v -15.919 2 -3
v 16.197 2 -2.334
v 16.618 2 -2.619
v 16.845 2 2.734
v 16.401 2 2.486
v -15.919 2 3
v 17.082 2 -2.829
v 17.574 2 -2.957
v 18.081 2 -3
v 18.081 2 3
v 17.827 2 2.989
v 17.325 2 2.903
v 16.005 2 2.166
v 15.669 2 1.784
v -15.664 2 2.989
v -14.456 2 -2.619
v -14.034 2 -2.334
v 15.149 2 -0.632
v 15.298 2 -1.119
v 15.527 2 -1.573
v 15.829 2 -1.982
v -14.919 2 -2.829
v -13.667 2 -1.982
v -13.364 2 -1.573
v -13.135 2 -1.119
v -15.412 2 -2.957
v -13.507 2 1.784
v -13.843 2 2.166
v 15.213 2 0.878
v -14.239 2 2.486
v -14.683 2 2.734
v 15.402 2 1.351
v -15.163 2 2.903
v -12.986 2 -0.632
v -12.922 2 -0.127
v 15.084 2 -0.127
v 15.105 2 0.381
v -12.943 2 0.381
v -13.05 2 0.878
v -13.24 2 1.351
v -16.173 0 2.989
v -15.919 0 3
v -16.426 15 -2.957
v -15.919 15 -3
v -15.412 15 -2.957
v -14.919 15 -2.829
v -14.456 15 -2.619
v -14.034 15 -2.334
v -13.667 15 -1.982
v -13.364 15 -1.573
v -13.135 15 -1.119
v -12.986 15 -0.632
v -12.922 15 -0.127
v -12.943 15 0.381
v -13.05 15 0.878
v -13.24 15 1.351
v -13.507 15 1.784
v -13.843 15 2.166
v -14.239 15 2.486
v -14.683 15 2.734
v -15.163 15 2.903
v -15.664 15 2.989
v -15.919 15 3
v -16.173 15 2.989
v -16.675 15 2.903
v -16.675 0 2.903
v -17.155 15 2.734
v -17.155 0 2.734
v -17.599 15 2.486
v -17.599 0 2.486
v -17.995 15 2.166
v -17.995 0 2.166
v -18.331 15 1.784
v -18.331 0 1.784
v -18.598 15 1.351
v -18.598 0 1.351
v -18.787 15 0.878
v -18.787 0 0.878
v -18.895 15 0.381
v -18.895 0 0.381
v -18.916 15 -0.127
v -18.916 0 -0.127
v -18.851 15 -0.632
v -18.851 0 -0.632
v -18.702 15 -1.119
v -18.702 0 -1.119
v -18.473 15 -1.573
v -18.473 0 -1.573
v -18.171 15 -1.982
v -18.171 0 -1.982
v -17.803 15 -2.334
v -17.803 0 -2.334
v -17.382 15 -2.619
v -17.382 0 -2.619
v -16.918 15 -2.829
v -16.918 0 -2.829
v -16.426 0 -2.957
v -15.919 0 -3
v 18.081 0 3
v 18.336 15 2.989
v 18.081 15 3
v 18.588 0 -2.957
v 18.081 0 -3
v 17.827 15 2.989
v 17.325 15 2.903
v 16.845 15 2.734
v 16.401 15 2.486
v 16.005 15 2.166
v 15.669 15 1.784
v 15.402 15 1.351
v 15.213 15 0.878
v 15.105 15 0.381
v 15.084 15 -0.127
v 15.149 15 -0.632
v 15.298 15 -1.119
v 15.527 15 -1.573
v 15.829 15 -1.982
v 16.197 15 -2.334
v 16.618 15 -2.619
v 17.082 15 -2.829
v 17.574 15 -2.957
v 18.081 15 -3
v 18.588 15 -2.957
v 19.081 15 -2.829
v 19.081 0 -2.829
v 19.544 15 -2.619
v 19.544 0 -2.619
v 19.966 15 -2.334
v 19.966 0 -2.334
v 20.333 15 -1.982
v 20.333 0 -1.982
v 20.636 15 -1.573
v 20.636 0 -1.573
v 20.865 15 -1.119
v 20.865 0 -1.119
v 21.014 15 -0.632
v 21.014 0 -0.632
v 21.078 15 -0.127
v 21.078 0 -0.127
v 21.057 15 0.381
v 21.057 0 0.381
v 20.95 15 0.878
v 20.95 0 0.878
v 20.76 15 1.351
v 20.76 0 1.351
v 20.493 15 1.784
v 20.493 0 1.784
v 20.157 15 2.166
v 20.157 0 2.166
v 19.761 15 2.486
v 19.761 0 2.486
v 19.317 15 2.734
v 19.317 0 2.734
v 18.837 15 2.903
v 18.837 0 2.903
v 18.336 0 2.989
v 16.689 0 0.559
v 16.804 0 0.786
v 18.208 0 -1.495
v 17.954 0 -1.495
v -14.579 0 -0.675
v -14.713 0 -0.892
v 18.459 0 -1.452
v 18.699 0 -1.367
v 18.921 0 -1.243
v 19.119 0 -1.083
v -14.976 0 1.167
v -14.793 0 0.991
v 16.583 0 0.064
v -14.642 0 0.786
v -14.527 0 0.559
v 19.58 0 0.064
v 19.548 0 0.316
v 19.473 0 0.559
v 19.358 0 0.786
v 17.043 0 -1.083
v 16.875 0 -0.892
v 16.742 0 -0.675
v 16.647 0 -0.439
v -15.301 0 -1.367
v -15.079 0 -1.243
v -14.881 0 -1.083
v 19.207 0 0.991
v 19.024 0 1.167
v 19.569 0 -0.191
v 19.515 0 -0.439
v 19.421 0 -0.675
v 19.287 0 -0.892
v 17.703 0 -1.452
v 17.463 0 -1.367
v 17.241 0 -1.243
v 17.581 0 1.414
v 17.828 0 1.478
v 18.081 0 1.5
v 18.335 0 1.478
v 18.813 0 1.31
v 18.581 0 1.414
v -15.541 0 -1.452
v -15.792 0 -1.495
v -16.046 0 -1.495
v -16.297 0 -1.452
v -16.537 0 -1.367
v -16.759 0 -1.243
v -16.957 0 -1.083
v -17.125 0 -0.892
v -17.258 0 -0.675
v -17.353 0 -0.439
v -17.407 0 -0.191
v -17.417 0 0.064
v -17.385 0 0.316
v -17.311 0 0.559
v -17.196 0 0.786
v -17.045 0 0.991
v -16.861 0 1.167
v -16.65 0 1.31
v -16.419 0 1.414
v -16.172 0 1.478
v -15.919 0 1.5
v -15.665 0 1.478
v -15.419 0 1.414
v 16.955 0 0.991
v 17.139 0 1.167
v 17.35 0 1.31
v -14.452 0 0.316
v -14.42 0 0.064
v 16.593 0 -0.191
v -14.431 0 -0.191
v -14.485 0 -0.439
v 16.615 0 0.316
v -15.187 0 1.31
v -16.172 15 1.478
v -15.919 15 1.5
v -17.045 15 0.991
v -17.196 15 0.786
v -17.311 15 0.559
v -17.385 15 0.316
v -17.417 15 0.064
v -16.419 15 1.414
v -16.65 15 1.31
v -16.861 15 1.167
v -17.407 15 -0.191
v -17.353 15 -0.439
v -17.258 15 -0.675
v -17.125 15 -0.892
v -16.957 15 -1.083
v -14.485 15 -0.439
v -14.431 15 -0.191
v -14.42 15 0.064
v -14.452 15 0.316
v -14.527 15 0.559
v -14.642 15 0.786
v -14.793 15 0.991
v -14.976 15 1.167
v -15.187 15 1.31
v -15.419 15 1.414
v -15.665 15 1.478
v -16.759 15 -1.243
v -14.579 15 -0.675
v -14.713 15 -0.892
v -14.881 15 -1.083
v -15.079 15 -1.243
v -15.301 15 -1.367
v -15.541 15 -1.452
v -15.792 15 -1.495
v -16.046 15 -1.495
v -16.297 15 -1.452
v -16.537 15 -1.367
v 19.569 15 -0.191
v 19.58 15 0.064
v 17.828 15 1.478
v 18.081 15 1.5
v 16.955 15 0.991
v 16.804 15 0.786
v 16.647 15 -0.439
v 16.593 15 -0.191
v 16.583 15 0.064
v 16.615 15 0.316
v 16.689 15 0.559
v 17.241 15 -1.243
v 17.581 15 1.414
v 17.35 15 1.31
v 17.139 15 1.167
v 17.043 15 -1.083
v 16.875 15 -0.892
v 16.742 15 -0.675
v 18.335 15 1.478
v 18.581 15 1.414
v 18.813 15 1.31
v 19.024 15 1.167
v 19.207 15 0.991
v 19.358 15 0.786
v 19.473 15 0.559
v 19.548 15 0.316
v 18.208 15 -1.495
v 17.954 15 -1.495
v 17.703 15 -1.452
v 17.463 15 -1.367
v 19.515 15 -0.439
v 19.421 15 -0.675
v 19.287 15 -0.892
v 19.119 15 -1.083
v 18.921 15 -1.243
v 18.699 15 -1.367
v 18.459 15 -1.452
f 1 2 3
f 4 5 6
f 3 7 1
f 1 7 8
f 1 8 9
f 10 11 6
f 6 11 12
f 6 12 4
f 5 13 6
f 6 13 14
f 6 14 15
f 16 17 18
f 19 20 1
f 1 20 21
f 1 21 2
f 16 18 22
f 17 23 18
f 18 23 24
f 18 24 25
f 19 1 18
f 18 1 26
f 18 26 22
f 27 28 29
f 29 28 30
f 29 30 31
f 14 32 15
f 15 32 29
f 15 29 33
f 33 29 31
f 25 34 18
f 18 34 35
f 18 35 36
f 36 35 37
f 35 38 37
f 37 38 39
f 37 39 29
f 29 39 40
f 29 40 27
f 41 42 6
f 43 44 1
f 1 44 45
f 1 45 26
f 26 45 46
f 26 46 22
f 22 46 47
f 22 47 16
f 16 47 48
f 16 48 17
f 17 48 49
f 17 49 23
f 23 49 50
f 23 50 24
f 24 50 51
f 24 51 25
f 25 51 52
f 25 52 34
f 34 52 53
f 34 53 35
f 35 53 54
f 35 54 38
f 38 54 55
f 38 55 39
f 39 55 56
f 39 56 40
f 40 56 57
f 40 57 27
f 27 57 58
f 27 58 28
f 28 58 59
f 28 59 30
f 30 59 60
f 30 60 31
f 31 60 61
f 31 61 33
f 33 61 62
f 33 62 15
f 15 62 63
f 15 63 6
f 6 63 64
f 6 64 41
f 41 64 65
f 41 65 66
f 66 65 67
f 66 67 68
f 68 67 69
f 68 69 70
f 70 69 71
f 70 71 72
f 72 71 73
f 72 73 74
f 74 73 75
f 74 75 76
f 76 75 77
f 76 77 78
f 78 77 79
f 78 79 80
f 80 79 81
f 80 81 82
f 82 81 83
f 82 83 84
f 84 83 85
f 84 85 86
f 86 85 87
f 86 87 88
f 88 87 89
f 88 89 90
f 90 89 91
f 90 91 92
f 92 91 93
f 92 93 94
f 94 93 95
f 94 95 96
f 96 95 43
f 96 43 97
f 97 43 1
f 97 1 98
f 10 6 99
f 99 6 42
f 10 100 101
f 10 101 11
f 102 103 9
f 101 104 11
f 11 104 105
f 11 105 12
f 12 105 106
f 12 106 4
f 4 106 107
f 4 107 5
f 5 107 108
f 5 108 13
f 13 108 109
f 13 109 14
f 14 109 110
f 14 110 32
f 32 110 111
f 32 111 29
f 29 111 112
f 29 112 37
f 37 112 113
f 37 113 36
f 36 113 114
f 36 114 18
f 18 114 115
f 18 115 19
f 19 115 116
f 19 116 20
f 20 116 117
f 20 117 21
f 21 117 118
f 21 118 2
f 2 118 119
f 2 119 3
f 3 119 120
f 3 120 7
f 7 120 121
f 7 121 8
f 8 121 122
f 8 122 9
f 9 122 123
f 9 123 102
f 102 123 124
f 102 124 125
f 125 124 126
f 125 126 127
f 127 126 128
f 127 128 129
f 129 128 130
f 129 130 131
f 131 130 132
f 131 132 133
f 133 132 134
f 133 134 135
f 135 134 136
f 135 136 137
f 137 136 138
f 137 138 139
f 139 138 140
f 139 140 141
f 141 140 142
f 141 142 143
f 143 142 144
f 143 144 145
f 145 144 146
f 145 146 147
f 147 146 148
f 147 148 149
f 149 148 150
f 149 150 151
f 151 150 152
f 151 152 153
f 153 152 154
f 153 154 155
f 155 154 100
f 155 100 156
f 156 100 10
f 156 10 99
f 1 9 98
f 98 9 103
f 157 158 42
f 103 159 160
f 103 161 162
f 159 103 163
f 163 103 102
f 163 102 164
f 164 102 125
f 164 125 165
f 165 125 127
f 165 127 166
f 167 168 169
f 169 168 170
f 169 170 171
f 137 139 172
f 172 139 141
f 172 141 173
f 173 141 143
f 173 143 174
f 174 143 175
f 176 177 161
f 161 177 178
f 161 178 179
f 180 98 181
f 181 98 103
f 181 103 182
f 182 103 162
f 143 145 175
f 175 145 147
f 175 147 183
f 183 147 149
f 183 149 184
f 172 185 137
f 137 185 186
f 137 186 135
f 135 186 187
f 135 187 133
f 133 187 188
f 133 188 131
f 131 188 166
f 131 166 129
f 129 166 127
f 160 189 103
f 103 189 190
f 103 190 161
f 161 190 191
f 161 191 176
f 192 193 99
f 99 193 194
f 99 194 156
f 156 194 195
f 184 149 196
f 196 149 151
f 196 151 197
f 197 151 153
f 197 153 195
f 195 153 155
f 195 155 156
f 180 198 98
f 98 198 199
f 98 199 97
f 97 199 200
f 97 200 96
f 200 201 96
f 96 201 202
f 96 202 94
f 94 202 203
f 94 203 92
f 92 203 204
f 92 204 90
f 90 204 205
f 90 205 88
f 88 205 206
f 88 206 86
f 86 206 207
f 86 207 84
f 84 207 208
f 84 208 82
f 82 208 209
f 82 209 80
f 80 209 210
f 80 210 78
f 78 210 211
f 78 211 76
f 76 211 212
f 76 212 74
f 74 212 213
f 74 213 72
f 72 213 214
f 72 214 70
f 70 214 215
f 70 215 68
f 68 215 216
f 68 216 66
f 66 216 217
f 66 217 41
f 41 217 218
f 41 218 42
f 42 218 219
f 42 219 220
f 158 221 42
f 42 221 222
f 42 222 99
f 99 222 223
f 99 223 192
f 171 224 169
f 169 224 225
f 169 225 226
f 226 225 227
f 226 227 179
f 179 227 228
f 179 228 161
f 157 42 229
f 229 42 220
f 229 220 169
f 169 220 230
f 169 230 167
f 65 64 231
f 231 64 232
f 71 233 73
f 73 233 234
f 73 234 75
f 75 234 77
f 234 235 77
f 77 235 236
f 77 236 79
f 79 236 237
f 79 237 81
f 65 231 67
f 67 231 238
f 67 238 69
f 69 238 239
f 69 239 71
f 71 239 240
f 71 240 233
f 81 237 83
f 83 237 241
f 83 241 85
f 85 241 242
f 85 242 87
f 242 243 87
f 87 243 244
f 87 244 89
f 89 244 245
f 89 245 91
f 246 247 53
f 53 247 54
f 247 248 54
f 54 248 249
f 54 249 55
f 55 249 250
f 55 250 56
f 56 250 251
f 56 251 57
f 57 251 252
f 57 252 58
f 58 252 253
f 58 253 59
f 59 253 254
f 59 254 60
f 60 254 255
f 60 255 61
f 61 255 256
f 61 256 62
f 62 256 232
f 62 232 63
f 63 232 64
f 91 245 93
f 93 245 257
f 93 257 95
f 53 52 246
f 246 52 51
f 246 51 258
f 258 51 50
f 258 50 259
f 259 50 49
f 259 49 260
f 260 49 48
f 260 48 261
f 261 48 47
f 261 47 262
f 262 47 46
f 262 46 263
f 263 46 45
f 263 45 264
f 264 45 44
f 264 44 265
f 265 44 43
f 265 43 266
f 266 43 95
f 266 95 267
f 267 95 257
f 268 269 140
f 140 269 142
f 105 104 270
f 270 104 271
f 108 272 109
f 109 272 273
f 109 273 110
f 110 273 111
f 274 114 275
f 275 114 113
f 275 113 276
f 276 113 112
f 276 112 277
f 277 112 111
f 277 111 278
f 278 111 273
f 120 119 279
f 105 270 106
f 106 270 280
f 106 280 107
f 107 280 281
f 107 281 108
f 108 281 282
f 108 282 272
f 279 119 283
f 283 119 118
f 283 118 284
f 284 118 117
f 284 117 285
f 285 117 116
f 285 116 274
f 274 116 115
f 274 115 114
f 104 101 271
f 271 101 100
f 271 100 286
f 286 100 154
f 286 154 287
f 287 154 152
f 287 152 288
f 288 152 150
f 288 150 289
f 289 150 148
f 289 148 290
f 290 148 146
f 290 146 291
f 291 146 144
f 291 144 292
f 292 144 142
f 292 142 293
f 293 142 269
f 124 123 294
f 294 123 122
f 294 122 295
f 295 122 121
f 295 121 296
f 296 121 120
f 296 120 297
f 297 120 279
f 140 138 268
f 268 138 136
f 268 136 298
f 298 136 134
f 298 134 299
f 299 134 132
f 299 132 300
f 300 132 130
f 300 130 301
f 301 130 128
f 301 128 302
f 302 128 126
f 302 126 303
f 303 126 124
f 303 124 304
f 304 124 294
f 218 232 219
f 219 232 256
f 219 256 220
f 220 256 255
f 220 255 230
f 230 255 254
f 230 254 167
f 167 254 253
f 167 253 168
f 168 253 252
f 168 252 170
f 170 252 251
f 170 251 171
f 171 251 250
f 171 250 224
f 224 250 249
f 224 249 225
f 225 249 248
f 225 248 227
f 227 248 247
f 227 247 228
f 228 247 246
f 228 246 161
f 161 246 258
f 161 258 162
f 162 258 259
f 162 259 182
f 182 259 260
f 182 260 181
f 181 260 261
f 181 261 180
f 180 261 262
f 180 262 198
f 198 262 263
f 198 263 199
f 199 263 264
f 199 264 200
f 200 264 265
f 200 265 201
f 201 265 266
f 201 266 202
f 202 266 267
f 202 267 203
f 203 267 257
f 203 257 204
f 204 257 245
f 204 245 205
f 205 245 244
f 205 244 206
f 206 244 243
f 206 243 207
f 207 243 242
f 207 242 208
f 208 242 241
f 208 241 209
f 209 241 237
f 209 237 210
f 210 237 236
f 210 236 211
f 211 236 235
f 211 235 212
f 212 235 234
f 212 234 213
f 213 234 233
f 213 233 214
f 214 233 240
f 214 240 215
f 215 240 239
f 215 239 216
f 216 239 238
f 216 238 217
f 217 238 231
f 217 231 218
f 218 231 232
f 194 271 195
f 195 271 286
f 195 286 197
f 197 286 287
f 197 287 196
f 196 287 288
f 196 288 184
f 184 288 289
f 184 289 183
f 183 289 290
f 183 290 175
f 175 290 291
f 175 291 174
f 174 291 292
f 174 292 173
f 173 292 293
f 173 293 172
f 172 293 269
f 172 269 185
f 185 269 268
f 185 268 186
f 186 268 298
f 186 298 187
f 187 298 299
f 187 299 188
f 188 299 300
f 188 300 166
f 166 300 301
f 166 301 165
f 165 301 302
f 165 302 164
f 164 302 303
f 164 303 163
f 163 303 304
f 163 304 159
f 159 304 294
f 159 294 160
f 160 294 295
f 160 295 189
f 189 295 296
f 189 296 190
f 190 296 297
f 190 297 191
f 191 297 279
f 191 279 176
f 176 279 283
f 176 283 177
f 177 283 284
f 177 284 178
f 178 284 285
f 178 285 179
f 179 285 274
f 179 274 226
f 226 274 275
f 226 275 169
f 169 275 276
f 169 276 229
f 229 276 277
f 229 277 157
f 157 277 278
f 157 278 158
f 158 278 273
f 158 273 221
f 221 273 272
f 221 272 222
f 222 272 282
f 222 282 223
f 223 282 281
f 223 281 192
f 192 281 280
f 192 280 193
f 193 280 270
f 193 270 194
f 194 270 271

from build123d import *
from build123d.topology import SkipClean

# Parameters (mm, degrees)
EXTRUDE_1_DEPTH     = 2
EXTRUDE_2_DEPTH     = 13
SKETCH_4_R          = 1.5
CUT_EXTRUDE_1_DEPTH = 27.046428912
SKETCH_5_R          = 1.5
CUT_EXTRUDE_2_DEPTH = 27.046428912


with BuildPart() as part:
    # 草图1 → 凸台-拉伸1 (new body)
    with BuildSketch(Plane(origin=(0, 0, 0), x_dir=(1, 0, 0), z_dir=(0, 1, 0))):
        with BuildLine():
            Line((-15.918812675, 3), (18.081187325, 3))
            ThreePointArc((18.081187325, 3), (21.081187325, 0), (18.081187325, -3))
            Line((18.081187325, -3), (-15.918812675, -3))
            ThreePointArc((-15.918812675, -3), (-18.918812675, 0), (-15.918812675, 3))
        make_face()
    extrude(amount=EXTRUDE_1_DEPTH)

    # 草图2 → 凸台-拉伸2 (add)
    with SkipClean():  # the faces are left unmerged after this step: merging them gives an invalid solid
        with BuildSketch(Plane(origin=(0, 2, 0), x_dir=(1, 0, 0), z_dir=(0, 1, 0))):
            with BuildLine():
                ThreePointArc((-15.918812675, 3), (-18.918812675, 0), (-15.918812675, -3))
                ThreePointArc((-15.918812675, -3), (-13.797492331, -2.121320344), (-12.918812675, 0))
                ThreePointArc((-12.918812675, 0), (-13.797492331, 2.121320344), (-15.918812675, 3))
            make_face()
            with BuildLine():
                ThreePointArc((18.081187325, 3), (15.081187325, 0), (18.081187325, -3))
                ThreePointArc((18.081187325, -3), (20.202507669, -2.121320344), (21.081187325, 0))
                ThreePointArc((21.081187325, 0), (20.202507669, 2.121320344), (18.081187325, 3))
            make_face()
        extrude(amount=EXTRUDE_2_DEPTH)

    # 草图4 → 切除-拉伸1 (cut, through all)
    with SkipClean():  # the faces are left unmerged after this step: merging them gives an invalid solid
        with BuildSketch(Plane(origin=(0, 15, 0), x_dir=(1, 0, 0), z_dir=(0, 1, 0))):
            with Locations(Location((-15.918812675, 0, 0), (0, 0, 270))):
                Circle(SKETCH_4_R)
        extrude(amount=-CUT_EXTRUDE_1_DEPTH, mode=Mode.SUBTRACT)

    # 草图5 → 切除-拉伸2 (cut, through all)
    with SkipClean():  # the faces are left unmerged after this step: merging them gives an invalid solid
        with BuildSketch(Plane(origin=(0, 15, 0), x_dir=(1, 0, 0), z_dir=(0, 1, 0))):
            with Locations(Location((18.081187325, 0, 0), (0, 0, 270))):
                Circle(SKETCH_5_R)
        extrude(amount=-CUT_EXTRUDE_2_DEPTH, mode=Mode.SUBTRACT)


solid = part.part
